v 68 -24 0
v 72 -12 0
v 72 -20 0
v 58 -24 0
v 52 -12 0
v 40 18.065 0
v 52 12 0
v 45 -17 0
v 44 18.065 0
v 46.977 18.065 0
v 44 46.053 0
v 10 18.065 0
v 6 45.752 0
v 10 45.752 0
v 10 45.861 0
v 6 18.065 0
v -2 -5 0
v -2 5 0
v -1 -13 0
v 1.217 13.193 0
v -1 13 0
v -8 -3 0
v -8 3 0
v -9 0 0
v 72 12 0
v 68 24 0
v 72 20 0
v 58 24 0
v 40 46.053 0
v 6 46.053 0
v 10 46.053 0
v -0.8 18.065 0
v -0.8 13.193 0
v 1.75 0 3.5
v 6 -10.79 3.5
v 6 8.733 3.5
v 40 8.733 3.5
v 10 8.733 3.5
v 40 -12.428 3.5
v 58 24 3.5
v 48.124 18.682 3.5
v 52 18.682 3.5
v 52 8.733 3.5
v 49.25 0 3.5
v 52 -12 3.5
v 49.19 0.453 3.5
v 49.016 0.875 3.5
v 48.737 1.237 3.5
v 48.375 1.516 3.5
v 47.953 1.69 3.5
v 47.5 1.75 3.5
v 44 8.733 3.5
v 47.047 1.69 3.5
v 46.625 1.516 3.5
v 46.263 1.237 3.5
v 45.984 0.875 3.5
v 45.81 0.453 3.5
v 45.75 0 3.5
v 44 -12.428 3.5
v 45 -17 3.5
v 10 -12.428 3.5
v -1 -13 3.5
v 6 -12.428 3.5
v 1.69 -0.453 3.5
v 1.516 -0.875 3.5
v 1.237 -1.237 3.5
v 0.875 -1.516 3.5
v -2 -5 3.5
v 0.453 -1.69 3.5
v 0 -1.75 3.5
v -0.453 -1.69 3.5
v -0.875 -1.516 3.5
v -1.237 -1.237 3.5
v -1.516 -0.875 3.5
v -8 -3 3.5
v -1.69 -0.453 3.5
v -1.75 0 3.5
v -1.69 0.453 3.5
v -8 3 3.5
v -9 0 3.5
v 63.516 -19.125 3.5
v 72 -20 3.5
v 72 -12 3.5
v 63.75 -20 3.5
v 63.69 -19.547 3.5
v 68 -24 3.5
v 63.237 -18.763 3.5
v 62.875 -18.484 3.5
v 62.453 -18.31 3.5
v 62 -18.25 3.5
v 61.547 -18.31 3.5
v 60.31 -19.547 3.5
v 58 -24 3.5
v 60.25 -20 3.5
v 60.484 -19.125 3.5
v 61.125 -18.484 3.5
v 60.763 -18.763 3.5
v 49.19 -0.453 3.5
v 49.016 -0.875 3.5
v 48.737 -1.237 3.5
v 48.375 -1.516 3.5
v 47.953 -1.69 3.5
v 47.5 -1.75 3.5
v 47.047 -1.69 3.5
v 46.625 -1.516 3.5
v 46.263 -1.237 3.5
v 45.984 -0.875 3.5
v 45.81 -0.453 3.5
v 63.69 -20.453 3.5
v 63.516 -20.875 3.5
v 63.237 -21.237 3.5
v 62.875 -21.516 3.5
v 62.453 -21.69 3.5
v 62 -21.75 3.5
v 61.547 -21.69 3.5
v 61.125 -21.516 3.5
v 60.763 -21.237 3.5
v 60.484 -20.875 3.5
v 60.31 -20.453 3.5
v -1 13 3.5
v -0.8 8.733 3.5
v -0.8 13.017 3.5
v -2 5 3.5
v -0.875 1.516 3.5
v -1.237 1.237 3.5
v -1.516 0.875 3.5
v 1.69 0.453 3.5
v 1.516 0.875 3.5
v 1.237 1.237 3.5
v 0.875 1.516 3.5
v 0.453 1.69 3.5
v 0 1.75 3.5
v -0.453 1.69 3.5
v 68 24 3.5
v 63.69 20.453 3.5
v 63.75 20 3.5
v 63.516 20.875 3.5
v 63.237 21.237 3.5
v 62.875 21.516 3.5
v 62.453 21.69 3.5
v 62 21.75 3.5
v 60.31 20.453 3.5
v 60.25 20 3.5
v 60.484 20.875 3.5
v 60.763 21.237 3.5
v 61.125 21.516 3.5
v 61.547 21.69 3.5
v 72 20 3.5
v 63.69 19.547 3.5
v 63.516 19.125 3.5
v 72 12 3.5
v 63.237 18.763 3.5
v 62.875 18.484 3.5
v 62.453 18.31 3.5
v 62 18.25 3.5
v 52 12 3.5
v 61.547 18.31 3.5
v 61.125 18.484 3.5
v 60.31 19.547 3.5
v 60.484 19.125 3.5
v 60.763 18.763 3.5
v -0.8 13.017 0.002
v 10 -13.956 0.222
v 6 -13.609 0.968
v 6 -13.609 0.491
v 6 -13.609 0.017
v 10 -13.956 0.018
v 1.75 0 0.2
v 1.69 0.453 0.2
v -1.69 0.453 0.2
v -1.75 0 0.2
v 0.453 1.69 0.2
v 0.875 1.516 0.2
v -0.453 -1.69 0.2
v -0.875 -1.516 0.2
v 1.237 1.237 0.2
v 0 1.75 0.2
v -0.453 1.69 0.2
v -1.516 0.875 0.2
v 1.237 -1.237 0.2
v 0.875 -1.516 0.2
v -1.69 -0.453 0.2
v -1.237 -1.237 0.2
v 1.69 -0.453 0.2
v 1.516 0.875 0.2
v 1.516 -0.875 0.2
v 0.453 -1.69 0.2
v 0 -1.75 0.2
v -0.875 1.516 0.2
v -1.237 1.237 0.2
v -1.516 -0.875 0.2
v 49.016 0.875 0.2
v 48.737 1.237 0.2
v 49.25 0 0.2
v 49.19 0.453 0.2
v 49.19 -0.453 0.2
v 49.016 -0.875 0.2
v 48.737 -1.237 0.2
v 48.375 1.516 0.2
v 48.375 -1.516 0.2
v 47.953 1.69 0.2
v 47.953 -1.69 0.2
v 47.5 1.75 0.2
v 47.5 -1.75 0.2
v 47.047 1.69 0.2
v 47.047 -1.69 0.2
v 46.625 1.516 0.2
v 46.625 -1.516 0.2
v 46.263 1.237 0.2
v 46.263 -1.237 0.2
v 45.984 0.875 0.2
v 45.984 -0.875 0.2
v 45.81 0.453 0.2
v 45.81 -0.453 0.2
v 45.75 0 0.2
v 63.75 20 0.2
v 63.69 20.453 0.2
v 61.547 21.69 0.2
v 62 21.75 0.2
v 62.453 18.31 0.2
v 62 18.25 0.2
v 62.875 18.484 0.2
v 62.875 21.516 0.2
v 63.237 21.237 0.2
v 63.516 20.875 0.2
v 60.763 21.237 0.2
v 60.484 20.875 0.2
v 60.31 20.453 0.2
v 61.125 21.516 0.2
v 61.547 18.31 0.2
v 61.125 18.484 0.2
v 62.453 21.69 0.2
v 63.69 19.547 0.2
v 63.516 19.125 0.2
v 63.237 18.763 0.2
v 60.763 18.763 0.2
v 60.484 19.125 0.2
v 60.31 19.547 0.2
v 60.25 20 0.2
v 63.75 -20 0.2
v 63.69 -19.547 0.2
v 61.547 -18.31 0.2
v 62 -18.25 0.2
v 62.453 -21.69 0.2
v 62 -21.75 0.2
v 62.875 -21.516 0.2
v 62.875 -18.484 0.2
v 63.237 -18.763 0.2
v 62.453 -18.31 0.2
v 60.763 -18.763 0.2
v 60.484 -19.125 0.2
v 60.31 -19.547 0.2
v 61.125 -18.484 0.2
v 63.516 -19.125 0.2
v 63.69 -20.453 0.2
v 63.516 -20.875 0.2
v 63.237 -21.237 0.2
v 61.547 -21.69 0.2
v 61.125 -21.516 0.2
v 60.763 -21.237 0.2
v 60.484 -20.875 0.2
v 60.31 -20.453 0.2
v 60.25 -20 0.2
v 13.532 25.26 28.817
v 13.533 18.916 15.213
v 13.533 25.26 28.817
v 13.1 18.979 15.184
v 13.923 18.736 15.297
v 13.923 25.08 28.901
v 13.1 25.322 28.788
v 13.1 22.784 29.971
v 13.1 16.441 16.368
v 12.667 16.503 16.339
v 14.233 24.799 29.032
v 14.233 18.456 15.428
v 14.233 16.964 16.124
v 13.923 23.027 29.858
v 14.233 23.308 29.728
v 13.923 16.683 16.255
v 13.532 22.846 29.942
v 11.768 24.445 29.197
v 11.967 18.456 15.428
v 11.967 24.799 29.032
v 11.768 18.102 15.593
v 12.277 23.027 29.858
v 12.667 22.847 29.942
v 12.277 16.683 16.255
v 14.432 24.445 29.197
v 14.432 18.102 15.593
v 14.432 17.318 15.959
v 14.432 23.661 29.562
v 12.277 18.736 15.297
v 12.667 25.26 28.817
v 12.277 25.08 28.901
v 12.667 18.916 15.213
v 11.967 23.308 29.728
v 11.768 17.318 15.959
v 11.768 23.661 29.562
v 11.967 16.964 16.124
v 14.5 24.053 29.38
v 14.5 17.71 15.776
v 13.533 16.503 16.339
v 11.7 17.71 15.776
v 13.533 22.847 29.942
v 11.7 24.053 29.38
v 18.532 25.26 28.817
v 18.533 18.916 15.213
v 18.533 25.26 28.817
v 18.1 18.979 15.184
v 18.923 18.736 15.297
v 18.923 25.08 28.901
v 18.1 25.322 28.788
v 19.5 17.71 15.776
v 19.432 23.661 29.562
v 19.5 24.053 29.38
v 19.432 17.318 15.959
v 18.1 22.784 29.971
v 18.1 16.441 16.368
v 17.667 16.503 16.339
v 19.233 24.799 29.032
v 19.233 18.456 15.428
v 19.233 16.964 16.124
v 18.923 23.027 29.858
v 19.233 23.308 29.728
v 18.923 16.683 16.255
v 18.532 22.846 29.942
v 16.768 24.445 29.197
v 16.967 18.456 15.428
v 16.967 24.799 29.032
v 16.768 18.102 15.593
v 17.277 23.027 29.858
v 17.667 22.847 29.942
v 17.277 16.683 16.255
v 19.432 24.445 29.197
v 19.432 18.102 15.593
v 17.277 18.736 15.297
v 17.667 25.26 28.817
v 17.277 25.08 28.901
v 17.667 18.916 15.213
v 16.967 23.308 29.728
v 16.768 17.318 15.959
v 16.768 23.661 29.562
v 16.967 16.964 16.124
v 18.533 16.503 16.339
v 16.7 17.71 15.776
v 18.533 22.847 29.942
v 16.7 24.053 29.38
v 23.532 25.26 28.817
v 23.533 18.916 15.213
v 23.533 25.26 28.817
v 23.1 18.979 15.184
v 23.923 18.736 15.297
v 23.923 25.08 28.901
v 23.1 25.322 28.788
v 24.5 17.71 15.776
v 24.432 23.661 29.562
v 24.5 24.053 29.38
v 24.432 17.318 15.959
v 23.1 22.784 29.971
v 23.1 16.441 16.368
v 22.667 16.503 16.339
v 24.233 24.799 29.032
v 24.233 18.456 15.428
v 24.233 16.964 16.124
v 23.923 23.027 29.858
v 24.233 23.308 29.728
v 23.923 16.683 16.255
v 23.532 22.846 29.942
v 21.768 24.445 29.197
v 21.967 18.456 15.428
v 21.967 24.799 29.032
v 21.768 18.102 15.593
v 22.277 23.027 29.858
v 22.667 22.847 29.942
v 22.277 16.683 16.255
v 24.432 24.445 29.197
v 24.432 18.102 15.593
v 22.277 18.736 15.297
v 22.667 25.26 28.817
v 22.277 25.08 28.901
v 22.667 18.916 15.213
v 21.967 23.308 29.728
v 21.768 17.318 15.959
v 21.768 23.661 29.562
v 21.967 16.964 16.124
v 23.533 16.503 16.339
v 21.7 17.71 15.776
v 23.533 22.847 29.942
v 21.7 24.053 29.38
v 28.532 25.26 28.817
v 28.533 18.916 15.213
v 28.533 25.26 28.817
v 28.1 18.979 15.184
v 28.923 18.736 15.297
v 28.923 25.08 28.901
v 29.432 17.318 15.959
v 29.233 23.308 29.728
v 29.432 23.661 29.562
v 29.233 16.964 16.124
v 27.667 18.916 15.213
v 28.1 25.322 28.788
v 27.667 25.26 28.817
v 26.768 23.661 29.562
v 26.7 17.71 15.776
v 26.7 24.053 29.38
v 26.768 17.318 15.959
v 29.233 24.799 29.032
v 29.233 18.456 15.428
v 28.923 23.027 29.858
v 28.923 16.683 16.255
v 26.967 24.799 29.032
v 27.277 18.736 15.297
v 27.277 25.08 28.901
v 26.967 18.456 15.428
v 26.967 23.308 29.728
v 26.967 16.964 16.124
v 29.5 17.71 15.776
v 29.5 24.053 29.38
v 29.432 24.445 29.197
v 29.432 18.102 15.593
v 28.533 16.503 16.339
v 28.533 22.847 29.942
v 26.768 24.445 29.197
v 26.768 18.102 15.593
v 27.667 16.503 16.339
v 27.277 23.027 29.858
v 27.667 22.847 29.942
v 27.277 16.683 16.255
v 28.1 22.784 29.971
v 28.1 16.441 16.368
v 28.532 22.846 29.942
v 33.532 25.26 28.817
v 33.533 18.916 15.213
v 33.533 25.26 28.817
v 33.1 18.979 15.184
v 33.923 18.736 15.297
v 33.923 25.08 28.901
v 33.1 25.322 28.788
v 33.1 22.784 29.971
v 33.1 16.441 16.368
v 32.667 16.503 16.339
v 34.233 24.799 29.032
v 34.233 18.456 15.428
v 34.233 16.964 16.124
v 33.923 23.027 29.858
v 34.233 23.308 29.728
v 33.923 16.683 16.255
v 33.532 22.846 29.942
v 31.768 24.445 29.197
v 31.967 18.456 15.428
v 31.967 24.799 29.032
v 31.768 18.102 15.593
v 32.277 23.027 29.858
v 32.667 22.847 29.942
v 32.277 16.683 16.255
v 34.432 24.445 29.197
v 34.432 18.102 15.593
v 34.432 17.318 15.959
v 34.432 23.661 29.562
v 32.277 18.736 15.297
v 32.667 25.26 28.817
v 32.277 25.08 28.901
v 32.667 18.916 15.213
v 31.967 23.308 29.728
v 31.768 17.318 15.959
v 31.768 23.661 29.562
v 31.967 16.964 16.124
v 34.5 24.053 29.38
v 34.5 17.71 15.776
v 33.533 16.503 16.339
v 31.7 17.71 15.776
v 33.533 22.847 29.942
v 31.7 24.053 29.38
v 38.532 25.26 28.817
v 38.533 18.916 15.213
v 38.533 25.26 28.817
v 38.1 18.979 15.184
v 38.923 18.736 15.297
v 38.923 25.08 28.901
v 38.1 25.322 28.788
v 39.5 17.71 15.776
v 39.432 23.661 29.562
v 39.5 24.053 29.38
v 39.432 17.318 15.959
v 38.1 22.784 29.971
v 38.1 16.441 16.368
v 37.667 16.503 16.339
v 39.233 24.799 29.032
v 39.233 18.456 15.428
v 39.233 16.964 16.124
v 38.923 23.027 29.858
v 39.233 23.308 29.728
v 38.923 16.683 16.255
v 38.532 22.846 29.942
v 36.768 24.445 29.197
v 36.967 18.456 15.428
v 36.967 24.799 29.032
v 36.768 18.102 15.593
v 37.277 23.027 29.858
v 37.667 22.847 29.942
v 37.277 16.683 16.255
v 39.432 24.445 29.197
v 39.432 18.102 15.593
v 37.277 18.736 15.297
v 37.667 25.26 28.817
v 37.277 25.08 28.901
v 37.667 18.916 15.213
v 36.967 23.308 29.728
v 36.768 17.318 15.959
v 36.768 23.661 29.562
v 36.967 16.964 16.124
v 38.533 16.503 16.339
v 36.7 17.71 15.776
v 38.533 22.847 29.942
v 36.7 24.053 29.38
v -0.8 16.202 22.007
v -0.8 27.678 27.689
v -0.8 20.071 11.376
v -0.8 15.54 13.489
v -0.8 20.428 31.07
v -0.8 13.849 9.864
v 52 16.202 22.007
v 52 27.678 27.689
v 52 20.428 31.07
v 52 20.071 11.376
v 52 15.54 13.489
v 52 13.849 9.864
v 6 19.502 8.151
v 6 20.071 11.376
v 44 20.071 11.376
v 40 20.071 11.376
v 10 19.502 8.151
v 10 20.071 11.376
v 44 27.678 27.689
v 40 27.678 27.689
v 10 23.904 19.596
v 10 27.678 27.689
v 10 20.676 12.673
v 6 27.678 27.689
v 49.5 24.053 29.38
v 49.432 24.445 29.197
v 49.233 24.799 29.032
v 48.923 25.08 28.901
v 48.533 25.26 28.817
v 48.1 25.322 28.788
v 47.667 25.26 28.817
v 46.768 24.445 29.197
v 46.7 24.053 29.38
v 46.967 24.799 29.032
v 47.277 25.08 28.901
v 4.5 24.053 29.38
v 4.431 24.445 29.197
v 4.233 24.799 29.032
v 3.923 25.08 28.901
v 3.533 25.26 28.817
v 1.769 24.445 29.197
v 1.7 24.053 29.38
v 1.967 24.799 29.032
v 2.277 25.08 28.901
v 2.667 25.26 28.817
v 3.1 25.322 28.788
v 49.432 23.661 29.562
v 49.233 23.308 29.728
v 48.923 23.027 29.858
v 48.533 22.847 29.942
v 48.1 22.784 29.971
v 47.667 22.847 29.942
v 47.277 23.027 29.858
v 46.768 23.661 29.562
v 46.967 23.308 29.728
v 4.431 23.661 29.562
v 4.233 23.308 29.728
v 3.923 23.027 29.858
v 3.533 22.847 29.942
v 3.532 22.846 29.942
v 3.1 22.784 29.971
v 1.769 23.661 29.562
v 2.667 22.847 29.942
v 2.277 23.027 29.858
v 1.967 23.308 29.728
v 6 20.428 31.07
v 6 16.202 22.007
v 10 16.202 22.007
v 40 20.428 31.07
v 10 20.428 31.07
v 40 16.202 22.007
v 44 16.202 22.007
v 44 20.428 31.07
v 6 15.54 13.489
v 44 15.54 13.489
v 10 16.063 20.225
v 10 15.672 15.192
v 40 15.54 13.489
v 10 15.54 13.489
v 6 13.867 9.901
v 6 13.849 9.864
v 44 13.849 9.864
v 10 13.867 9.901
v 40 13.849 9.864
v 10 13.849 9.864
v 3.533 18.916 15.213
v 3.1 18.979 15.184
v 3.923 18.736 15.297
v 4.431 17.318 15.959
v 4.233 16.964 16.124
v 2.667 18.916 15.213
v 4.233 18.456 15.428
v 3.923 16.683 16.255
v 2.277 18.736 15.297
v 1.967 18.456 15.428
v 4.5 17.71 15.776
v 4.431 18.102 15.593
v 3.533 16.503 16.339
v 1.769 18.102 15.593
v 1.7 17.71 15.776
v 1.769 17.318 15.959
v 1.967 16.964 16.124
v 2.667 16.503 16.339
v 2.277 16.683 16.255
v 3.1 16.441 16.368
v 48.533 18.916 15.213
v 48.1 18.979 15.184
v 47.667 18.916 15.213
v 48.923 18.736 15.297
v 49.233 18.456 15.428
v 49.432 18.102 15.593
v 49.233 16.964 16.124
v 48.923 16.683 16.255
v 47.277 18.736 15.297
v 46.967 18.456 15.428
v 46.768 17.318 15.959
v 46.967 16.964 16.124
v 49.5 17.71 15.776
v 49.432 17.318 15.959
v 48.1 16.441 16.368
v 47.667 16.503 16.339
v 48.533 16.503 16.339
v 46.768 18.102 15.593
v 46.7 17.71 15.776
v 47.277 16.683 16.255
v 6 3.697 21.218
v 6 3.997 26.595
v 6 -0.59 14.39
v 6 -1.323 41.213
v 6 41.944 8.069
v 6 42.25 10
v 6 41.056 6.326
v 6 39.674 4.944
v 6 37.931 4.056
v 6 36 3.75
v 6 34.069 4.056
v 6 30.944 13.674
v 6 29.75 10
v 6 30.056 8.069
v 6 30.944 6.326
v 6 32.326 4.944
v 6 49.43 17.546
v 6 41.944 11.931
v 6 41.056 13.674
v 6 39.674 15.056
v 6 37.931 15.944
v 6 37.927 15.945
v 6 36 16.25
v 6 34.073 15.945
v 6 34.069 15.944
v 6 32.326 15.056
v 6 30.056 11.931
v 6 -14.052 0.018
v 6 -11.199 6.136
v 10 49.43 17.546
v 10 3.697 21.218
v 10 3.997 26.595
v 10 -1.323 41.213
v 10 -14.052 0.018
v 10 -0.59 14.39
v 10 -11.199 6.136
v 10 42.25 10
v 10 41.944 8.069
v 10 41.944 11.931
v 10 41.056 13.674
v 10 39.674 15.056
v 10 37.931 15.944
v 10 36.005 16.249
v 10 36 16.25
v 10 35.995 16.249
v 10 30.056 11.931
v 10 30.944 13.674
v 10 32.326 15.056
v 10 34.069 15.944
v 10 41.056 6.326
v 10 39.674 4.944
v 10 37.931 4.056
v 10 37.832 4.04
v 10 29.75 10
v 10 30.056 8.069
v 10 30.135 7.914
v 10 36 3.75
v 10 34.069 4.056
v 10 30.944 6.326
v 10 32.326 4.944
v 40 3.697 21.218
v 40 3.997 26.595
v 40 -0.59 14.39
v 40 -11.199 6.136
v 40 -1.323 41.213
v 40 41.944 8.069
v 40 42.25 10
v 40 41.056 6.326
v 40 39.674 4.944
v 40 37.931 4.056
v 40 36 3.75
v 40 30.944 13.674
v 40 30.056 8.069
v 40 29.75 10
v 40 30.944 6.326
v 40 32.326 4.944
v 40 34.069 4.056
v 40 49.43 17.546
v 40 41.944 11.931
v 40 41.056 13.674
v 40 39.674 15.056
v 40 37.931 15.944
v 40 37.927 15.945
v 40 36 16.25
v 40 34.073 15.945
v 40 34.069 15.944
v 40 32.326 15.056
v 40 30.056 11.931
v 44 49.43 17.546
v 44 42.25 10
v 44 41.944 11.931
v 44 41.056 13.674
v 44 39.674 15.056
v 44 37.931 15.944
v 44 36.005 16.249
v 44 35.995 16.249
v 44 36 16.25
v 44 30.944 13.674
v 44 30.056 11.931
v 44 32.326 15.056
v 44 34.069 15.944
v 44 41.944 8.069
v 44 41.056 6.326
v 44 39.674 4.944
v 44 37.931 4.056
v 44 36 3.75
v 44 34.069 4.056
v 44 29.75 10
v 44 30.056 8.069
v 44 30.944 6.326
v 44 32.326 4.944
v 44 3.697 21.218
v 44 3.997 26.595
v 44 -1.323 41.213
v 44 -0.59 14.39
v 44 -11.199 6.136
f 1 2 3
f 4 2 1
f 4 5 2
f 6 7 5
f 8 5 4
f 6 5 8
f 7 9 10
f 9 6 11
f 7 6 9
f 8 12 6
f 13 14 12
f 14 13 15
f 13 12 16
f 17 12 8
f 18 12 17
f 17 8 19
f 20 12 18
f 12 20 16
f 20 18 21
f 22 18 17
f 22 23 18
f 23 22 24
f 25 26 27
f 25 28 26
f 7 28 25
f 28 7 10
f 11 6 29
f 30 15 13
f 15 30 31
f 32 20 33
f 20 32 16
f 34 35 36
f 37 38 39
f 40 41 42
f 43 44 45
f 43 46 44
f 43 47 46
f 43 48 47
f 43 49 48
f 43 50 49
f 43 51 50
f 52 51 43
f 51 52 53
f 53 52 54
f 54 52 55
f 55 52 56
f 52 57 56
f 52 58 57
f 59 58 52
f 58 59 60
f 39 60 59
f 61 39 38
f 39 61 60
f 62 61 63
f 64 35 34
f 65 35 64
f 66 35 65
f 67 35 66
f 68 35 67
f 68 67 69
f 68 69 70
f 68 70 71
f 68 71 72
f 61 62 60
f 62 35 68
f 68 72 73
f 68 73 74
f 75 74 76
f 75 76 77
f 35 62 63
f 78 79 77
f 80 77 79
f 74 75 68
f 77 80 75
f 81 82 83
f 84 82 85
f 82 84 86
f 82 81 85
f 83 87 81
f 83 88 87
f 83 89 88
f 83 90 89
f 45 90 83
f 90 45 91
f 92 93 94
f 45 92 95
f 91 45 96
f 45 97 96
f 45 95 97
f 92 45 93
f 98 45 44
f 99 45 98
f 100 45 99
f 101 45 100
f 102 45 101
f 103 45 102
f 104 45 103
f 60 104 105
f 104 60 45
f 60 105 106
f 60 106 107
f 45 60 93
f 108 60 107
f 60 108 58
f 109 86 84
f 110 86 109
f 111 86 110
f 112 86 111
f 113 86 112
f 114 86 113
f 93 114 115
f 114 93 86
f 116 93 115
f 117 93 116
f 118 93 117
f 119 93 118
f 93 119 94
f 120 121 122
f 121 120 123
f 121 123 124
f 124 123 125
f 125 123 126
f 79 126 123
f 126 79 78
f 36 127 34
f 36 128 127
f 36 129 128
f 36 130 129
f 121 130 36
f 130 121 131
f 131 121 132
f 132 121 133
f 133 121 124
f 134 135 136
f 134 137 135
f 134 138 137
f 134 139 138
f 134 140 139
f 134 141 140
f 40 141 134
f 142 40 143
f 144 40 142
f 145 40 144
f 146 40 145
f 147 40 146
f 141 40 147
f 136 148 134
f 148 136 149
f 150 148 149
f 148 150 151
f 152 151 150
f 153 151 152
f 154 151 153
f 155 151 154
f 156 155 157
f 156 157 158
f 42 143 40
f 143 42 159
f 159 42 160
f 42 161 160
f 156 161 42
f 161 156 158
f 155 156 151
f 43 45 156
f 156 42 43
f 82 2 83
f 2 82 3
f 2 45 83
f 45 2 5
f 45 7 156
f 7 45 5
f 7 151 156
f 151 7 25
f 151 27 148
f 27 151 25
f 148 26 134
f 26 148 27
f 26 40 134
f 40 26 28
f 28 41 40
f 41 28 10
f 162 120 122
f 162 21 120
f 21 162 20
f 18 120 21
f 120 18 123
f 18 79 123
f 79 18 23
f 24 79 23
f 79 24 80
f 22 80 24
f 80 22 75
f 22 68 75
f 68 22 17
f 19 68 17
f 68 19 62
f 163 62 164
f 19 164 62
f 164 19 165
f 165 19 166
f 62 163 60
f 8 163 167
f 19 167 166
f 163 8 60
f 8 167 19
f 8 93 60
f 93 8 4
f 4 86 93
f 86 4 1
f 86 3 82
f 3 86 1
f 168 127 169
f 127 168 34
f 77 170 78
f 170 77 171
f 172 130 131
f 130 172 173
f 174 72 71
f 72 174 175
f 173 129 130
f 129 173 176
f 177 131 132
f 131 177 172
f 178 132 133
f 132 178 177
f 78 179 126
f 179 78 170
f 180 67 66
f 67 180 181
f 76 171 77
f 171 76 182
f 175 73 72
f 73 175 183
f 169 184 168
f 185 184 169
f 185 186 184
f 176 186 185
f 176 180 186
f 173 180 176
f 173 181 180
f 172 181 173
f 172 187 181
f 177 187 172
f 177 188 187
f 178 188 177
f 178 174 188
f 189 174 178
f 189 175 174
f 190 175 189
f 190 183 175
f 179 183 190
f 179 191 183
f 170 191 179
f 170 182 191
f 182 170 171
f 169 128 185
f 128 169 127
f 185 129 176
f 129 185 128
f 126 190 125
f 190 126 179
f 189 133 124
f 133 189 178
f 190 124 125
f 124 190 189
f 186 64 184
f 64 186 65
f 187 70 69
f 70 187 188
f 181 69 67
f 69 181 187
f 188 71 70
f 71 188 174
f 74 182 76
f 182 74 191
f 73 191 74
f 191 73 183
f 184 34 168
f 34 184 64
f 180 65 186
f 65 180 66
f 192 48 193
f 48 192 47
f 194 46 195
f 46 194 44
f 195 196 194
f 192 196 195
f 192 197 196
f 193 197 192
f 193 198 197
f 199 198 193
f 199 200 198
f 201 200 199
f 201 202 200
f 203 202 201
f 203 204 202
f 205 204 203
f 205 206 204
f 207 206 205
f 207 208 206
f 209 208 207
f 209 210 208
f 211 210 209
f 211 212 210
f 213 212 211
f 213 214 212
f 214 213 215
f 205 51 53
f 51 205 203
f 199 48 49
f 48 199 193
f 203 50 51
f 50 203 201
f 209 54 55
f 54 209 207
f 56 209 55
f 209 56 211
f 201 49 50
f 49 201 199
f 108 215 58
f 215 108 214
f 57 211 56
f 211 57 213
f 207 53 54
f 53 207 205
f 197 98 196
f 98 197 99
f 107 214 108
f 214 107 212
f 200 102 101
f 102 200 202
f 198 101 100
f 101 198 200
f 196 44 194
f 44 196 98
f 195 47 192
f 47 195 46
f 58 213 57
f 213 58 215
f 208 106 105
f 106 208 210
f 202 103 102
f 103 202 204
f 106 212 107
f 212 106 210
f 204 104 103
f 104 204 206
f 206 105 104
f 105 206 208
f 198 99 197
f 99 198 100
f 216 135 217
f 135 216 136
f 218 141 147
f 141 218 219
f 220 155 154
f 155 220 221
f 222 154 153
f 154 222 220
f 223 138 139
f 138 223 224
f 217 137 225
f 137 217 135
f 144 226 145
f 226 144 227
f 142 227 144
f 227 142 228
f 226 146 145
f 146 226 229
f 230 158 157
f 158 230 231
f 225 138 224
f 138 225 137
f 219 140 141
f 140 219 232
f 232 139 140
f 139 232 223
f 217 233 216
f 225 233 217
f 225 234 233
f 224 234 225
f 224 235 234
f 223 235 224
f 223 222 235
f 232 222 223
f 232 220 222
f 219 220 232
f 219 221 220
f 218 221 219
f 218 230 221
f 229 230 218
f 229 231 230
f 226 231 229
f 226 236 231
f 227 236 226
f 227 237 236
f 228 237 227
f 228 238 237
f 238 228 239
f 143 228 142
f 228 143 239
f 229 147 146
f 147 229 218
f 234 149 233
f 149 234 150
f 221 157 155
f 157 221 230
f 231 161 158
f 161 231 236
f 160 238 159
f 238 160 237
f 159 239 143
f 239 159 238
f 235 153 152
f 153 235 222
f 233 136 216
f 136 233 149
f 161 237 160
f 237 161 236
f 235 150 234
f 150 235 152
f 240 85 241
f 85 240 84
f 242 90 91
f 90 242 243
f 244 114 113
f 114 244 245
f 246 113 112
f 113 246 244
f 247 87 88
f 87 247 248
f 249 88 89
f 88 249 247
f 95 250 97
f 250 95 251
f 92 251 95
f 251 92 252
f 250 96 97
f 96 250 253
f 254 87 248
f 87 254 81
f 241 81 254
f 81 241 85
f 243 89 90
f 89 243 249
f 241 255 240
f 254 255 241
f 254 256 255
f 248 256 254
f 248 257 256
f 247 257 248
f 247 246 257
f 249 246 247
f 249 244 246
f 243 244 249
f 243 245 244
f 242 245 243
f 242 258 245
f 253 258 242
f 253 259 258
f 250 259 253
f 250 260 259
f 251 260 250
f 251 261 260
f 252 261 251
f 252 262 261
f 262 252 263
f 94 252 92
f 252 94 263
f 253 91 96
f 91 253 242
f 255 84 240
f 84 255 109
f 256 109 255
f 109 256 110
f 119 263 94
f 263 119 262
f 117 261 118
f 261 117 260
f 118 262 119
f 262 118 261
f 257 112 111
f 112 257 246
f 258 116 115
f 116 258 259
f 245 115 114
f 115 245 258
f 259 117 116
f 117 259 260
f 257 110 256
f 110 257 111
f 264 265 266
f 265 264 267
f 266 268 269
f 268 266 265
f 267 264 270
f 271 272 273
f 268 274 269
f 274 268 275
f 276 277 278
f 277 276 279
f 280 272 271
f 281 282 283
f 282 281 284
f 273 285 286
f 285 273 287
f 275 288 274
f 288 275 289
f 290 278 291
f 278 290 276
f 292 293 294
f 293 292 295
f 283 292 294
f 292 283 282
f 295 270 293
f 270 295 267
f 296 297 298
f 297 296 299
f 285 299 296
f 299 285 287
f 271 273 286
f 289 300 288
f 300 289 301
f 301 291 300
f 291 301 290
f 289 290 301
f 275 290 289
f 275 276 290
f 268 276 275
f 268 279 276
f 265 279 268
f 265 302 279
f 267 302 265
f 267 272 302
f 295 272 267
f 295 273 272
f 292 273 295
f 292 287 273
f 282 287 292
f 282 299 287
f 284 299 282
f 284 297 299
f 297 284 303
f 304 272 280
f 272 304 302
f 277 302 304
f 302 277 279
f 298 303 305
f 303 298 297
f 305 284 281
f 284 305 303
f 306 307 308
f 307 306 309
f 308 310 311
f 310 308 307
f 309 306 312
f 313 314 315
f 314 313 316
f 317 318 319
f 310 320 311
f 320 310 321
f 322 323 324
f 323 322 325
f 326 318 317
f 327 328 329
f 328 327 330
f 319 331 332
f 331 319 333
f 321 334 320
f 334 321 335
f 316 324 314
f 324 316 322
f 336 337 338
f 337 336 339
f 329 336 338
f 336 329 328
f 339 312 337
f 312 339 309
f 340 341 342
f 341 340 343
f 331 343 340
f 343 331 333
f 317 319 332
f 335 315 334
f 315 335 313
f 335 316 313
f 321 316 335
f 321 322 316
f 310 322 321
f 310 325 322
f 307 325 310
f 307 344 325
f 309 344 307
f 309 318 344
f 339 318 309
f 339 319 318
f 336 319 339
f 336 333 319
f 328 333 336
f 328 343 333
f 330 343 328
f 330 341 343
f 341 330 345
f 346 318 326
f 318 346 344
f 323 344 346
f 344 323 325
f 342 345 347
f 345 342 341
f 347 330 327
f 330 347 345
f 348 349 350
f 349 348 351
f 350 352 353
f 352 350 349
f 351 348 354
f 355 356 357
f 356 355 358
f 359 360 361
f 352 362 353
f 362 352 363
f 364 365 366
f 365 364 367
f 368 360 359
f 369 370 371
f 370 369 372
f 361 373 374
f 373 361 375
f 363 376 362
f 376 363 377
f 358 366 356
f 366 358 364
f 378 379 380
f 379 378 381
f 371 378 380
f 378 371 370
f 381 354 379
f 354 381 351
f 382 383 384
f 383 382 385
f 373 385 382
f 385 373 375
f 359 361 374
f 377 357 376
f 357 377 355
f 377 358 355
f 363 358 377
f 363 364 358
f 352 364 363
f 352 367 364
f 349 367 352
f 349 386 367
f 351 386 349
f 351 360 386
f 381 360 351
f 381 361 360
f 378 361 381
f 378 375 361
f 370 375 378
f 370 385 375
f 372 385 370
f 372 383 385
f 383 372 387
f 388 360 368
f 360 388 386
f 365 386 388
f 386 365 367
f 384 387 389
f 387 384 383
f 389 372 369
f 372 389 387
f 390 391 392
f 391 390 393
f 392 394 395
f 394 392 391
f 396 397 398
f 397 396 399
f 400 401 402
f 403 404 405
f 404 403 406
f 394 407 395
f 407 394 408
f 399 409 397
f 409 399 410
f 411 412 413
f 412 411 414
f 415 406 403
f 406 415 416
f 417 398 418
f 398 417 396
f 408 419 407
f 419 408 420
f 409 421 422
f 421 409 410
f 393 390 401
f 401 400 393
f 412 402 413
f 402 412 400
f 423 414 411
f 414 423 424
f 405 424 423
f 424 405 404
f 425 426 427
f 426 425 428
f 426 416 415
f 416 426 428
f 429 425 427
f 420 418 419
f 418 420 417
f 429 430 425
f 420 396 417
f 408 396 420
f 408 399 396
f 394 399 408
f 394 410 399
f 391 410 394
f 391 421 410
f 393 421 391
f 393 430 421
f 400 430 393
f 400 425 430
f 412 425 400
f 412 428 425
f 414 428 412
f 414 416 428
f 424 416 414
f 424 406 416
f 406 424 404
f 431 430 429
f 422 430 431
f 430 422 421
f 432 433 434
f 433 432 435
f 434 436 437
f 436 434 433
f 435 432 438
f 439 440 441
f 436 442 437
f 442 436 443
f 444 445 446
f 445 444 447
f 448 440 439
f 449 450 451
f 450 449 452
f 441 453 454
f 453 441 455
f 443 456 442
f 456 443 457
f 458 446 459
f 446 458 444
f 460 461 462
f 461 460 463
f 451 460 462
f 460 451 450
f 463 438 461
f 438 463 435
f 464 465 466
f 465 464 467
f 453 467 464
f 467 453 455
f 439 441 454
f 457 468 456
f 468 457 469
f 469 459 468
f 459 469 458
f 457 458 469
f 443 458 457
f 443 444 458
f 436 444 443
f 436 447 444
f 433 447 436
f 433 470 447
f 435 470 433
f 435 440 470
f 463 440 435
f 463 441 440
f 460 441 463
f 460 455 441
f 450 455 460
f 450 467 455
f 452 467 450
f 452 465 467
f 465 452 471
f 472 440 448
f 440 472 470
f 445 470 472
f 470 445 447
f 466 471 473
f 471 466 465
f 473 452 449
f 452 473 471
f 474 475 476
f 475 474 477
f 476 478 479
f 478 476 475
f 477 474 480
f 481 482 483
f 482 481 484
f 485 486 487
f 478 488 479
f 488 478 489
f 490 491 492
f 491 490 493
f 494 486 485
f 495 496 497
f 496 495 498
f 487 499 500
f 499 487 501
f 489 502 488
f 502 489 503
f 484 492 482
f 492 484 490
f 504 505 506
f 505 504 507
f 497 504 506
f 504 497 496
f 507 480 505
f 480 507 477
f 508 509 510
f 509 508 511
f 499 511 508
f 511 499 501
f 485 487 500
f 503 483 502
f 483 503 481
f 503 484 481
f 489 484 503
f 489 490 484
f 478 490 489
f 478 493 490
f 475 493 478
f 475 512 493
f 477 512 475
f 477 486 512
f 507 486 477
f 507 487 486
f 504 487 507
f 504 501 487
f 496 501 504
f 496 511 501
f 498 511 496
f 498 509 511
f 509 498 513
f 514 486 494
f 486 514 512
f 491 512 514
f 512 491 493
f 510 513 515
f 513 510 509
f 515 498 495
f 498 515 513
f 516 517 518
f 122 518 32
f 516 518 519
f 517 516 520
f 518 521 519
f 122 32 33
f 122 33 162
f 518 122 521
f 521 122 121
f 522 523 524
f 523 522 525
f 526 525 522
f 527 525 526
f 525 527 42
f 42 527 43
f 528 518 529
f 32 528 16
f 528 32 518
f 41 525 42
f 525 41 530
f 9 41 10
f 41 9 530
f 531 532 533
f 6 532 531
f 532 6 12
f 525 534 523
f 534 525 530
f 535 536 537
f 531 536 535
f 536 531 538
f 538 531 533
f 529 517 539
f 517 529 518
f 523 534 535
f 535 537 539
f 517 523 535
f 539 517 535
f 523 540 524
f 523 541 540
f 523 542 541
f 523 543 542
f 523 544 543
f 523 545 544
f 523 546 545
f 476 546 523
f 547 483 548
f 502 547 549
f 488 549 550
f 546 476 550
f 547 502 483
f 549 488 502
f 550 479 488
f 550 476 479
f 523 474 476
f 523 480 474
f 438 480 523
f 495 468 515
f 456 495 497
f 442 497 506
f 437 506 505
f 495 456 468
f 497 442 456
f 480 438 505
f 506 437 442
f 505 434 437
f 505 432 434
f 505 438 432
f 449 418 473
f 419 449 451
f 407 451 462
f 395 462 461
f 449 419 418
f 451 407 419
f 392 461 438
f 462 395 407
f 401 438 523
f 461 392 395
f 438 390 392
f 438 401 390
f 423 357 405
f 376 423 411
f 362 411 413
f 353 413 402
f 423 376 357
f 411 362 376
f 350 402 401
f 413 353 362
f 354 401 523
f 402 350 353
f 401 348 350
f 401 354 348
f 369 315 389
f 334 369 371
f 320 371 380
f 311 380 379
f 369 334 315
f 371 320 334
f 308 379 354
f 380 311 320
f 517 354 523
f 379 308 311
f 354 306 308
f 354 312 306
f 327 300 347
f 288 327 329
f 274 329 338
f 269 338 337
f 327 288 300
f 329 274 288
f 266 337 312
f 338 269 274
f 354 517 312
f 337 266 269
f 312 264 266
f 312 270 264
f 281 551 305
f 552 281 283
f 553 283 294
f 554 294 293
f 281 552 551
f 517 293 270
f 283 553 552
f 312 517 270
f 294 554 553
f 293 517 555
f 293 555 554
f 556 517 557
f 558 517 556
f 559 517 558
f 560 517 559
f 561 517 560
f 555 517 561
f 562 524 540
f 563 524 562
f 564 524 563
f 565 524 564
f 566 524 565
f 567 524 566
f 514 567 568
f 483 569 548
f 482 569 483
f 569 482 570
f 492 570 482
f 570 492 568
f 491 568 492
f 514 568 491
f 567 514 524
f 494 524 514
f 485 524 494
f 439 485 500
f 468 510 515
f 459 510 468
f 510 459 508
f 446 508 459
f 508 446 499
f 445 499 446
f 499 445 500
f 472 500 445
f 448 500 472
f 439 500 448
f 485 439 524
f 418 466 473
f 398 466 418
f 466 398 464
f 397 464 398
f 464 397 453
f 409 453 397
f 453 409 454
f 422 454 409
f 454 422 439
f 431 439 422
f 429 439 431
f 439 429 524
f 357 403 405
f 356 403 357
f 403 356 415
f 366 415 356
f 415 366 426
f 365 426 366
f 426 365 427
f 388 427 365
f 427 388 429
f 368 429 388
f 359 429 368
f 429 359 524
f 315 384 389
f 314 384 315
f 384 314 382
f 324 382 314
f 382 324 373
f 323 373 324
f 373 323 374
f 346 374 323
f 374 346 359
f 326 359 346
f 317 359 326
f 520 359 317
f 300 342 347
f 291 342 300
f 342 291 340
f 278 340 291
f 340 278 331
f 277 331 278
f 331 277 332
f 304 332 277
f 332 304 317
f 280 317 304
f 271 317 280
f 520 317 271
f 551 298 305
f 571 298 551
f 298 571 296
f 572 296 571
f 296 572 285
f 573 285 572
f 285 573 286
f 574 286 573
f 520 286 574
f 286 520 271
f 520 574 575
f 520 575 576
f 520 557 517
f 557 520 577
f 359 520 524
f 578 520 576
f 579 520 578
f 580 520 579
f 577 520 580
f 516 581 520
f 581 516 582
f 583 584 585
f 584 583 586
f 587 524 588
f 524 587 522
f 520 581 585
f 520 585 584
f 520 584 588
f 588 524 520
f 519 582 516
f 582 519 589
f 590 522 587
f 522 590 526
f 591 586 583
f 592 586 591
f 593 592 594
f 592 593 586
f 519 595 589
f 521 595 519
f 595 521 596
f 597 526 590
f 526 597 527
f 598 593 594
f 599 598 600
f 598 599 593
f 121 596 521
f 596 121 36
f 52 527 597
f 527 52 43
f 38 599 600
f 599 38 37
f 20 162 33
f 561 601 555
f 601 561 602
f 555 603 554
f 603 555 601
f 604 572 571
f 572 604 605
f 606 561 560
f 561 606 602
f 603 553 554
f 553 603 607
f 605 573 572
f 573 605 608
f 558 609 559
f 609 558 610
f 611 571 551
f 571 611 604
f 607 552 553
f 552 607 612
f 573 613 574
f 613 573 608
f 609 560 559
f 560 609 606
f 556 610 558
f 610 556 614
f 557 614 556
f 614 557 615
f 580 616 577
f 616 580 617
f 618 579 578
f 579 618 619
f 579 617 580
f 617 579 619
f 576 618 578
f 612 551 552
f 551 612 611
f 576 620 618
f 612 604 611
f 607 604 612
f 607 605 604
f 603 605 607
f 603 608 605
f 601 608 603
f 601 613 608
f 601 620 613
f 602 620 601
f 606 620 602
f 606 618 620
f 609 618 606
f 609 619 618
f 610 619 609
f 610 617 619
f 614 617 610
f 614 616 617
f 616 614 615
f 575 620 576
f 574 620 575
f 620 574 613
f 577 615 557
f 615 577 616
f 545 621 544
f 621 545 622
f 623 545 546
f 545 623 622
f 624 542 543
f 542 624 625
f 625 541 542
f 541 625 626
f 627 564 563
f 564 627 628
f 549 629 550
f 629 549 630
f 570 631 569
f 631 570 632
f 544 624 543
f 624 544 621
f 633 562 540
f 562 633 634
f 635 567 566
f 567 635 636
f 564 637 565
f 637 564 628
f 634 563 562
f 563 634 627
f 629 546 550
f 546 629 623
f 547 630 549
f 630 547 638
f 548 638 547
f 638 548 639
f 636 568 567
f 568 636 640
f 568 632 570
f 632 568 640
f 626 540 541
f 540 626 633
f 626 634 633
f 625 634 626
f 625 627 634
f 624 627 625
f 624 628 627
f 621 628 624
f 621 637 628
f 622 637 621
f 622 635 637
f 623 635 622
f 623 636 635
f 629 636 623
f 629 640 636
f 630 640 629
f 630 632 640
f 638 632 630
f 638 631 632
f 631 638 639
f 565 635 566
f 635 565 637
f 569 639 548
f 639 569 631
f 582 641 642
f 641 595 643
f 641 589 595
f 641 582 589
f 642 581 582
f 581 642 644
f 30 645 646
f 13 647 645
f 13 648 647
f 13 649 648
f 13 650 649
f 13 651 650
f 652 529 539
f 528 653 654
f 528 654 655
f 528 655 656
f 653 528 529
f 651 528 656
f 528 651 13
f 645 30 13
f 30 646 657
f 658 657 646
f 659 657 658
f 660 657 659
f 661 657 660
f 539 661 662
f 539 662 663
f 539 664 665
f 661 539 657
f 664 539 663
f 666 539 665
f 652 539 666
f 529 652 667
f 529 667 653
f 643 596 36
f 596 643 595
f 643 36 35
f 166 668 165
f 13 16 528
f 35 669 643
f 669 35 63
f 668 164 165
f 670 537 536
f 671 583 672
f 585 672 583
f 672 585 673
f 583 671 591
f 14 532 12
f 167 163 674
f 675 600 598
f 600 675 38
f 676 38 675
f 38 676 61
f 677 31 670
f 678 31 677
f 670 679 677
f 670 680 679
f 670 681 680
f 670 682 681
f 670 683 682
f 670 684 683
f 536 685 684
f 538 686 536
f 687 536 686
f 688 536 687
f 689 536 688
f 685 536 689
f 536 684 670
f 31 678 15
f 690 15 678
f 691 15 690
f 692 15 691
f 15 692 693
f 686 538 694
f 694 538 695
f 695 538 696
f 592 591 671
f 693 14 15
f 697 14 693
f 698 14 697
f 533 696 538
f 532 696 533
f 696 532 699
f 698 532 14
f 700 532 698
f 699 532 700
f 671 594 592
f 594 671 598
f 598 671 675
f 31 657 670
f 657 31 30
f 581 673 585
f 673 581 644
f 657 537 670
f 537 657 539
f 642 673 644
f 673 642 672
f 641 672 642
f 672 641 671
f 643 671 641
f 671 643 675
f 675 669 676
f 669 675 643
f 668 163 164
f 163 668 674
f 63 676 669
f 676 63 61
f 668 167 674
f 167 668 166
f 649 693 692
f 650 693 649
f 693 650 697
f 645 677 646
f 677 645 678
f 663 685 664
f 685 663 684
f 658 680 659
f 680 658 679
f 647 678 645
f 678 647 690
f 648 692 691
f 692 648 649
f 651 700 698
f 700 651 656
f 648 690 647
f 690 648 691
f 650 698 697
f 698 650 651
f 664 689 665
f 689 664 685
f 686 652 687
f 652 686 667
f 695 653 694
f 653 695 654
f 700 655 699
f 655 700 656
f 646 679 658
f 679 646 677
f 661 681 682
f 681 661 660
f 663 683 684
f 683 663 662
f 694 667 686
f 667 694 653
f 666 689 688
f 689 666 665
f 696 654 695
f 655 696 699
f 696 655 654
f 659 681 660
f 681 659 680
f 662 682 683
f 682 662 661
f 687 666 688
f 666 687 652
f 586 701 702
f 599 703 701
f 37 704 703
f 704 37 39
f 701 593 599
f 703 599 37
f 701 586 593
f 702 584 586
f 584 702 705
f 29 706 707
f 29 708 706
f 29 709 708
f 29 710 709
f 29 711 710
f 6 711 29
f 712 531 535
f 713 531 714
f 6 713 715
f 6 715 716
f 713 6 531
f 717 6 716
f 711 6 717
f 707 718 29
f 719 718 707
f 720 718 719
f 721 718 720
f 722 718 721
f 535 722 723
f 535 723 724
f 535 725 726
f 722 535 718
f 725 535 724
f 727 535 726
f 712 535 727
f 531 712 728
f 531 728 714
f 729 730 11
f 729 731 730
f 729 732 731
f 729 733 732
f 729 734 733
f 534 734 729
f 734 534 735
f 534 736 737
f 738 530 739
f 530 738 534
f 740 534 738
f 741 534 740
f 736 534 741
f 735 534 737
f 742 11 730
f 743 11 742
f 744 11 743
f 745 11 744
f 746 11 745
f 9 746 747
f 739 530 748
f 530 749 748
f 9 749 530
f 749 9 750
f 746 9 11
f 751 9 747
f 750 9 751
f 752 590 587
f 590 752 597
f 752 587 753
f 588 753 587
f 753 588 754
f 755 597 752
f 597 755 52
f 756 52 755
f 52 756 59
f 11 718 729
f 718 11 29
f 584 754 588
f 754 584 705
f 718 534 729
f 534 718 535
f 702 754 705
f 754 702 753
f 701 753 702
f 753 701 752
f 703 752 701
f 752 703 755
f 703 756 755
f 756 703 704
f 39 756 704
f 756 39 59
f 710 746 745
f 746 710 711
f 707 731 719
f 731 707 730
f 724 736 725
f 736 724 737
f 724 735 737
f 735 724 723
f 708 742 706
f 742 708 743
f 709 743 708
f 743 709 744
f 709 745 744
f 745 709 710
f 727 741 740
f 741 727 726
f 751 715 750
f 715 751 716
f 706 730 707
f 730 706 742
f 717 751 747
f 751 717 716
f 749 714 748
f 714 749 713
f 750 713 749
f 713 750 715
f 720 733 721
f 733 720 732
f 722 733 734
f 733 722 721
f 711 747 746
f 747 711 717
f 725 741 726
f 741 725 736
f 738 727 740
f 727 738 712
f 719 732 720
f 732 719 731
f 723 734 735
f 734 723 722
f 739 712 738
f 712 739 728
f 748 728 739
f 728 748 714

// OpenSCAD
// file: 210820-leg-support.scad
module legsupport(x=0,y=0,z=0,l=4,r = 25)
{
    p = 28;
    q = -20;
    holed = 12.5;

    difference() {
        union() {
            translate([x+l/2,y,z]) rotate([90,r,90])
            color("yellow", 50) 
            linear_extrude(height = l, center = true, convexity = 10, twist = 0)
            {
                polygon(points=[[3+p*cos(r),2.5-1.75+p*sin(r)],[24,30],[-32,30],[-21,19],[-19,14],[-20,6],[-8+q*cos(r),5-2.512+q*sin(r)],[-8+q*cos(r),-2.512+q*sin(r)-1.75]]);
            }
        }

        union() {
            translate([x+l/2,y+21,z+9.5]) rotate([90,90,90]) color ("red"){cylinder(h=l+0.02, d=holed, $fn=20,center=true); }
        }
    }
}
// file: 210822-leg-profile.scad
module legprofile(x=0,y=0,z=0,l=40,r = 0)
{
    holed = 2.8;
    depth = 15;
    movey = 30;
    cent = -4;

    translate([x+l/2,y,z]) rotate([90, 25,90])
    union() {
        difference() {
            color("blue", 50) 
            linear_extrude(height = l, center = true, convexity = 10, twist = 0)
            {
                polygon(points=[[3,2.5-1.70],[0,12],[0,30],[-8,30],[-8,20],[-5,12],[-5,8],[-8,-2.512-1.70]]);
            }

            
            for (zz = [2:7]) {
                translate([cent,movey-depth/2, zz*5-22.5]) rotate([90,0,0]) color ("red") {cylinder(h=depth+0.02, d=holed, $fn=20,center=true); }
            }

            translate([cent,movey-depth/2, 0*5-22.5]) rotate([90,0,0]) color ("red") {cylinder(h=depth+0.02, d=holed, $fn=20,center=true); }

            translate([cent,movey-depth/2, 9*5-22.5]) rotate([90,0,0]) color ("red") {cylinder(h=depth+0.02, d=holed, $fn=20,center=true); }
        }
    }
}
// file: 210820-leg-bottom.scad
module bottom(x=0,y=0,z=0,thick=3.5, holed=3.5)
{
    difference() 
    {
        translate([x,y,z+thick/2]) 
        color("green", 50) 
        linear_extrude(height = thick, center = true, convexity = 10, twist = 0)
        {
            polygon(points=[[-9,0],[-8,3],[-2,5],[-1,13],[45,17],[58,24],[68,24],[72,20],[72,12],[52,12],[52,-12],[72,-12],[72,-20],[68,-24],[58,-24],[45,-17],[-1,-13],[-2,-5],[-8,-3]]);
        }
        translate([0,0,z+thick/2+0.2]) cylinder(thick, d=holed, $fn=24, center=true);
        translate([47.5,0,z+thick/2+0.2]) cylinder(thick, d=holed, $fn=24, center=true);
        translate([47.5+14.5,20,z+thick/2+0.2]) cylinder(thick, d=holed, $fn=24, center=true);
        translate([47.5+14.5,-20,z+thick/2+0.2]) cylinder(thick, d=holed, $fn=24, center=true);
    }
}
// main file
include <210820-leg-bottom.scad>;
include <210822-leg-profile.scad>;
include <210820-leg-support.scad>;

bottom_thick = 3.5;

difference()
{
    translate(0,0,0)
    {
        bottom(0,0,0, bottom_thick);

        xpos = -0.8;
        ypos = 15;
        zpos = 0.5;

        legprofile(xpos,ypos,zpos,52.8);

        legsupport(6.0,ypos,zpos,4.0);
        legsupport(40,ypos,zpos,4.0);
    }
    translate([0,0,-1]) cube([150,100,2], center=true);
}
